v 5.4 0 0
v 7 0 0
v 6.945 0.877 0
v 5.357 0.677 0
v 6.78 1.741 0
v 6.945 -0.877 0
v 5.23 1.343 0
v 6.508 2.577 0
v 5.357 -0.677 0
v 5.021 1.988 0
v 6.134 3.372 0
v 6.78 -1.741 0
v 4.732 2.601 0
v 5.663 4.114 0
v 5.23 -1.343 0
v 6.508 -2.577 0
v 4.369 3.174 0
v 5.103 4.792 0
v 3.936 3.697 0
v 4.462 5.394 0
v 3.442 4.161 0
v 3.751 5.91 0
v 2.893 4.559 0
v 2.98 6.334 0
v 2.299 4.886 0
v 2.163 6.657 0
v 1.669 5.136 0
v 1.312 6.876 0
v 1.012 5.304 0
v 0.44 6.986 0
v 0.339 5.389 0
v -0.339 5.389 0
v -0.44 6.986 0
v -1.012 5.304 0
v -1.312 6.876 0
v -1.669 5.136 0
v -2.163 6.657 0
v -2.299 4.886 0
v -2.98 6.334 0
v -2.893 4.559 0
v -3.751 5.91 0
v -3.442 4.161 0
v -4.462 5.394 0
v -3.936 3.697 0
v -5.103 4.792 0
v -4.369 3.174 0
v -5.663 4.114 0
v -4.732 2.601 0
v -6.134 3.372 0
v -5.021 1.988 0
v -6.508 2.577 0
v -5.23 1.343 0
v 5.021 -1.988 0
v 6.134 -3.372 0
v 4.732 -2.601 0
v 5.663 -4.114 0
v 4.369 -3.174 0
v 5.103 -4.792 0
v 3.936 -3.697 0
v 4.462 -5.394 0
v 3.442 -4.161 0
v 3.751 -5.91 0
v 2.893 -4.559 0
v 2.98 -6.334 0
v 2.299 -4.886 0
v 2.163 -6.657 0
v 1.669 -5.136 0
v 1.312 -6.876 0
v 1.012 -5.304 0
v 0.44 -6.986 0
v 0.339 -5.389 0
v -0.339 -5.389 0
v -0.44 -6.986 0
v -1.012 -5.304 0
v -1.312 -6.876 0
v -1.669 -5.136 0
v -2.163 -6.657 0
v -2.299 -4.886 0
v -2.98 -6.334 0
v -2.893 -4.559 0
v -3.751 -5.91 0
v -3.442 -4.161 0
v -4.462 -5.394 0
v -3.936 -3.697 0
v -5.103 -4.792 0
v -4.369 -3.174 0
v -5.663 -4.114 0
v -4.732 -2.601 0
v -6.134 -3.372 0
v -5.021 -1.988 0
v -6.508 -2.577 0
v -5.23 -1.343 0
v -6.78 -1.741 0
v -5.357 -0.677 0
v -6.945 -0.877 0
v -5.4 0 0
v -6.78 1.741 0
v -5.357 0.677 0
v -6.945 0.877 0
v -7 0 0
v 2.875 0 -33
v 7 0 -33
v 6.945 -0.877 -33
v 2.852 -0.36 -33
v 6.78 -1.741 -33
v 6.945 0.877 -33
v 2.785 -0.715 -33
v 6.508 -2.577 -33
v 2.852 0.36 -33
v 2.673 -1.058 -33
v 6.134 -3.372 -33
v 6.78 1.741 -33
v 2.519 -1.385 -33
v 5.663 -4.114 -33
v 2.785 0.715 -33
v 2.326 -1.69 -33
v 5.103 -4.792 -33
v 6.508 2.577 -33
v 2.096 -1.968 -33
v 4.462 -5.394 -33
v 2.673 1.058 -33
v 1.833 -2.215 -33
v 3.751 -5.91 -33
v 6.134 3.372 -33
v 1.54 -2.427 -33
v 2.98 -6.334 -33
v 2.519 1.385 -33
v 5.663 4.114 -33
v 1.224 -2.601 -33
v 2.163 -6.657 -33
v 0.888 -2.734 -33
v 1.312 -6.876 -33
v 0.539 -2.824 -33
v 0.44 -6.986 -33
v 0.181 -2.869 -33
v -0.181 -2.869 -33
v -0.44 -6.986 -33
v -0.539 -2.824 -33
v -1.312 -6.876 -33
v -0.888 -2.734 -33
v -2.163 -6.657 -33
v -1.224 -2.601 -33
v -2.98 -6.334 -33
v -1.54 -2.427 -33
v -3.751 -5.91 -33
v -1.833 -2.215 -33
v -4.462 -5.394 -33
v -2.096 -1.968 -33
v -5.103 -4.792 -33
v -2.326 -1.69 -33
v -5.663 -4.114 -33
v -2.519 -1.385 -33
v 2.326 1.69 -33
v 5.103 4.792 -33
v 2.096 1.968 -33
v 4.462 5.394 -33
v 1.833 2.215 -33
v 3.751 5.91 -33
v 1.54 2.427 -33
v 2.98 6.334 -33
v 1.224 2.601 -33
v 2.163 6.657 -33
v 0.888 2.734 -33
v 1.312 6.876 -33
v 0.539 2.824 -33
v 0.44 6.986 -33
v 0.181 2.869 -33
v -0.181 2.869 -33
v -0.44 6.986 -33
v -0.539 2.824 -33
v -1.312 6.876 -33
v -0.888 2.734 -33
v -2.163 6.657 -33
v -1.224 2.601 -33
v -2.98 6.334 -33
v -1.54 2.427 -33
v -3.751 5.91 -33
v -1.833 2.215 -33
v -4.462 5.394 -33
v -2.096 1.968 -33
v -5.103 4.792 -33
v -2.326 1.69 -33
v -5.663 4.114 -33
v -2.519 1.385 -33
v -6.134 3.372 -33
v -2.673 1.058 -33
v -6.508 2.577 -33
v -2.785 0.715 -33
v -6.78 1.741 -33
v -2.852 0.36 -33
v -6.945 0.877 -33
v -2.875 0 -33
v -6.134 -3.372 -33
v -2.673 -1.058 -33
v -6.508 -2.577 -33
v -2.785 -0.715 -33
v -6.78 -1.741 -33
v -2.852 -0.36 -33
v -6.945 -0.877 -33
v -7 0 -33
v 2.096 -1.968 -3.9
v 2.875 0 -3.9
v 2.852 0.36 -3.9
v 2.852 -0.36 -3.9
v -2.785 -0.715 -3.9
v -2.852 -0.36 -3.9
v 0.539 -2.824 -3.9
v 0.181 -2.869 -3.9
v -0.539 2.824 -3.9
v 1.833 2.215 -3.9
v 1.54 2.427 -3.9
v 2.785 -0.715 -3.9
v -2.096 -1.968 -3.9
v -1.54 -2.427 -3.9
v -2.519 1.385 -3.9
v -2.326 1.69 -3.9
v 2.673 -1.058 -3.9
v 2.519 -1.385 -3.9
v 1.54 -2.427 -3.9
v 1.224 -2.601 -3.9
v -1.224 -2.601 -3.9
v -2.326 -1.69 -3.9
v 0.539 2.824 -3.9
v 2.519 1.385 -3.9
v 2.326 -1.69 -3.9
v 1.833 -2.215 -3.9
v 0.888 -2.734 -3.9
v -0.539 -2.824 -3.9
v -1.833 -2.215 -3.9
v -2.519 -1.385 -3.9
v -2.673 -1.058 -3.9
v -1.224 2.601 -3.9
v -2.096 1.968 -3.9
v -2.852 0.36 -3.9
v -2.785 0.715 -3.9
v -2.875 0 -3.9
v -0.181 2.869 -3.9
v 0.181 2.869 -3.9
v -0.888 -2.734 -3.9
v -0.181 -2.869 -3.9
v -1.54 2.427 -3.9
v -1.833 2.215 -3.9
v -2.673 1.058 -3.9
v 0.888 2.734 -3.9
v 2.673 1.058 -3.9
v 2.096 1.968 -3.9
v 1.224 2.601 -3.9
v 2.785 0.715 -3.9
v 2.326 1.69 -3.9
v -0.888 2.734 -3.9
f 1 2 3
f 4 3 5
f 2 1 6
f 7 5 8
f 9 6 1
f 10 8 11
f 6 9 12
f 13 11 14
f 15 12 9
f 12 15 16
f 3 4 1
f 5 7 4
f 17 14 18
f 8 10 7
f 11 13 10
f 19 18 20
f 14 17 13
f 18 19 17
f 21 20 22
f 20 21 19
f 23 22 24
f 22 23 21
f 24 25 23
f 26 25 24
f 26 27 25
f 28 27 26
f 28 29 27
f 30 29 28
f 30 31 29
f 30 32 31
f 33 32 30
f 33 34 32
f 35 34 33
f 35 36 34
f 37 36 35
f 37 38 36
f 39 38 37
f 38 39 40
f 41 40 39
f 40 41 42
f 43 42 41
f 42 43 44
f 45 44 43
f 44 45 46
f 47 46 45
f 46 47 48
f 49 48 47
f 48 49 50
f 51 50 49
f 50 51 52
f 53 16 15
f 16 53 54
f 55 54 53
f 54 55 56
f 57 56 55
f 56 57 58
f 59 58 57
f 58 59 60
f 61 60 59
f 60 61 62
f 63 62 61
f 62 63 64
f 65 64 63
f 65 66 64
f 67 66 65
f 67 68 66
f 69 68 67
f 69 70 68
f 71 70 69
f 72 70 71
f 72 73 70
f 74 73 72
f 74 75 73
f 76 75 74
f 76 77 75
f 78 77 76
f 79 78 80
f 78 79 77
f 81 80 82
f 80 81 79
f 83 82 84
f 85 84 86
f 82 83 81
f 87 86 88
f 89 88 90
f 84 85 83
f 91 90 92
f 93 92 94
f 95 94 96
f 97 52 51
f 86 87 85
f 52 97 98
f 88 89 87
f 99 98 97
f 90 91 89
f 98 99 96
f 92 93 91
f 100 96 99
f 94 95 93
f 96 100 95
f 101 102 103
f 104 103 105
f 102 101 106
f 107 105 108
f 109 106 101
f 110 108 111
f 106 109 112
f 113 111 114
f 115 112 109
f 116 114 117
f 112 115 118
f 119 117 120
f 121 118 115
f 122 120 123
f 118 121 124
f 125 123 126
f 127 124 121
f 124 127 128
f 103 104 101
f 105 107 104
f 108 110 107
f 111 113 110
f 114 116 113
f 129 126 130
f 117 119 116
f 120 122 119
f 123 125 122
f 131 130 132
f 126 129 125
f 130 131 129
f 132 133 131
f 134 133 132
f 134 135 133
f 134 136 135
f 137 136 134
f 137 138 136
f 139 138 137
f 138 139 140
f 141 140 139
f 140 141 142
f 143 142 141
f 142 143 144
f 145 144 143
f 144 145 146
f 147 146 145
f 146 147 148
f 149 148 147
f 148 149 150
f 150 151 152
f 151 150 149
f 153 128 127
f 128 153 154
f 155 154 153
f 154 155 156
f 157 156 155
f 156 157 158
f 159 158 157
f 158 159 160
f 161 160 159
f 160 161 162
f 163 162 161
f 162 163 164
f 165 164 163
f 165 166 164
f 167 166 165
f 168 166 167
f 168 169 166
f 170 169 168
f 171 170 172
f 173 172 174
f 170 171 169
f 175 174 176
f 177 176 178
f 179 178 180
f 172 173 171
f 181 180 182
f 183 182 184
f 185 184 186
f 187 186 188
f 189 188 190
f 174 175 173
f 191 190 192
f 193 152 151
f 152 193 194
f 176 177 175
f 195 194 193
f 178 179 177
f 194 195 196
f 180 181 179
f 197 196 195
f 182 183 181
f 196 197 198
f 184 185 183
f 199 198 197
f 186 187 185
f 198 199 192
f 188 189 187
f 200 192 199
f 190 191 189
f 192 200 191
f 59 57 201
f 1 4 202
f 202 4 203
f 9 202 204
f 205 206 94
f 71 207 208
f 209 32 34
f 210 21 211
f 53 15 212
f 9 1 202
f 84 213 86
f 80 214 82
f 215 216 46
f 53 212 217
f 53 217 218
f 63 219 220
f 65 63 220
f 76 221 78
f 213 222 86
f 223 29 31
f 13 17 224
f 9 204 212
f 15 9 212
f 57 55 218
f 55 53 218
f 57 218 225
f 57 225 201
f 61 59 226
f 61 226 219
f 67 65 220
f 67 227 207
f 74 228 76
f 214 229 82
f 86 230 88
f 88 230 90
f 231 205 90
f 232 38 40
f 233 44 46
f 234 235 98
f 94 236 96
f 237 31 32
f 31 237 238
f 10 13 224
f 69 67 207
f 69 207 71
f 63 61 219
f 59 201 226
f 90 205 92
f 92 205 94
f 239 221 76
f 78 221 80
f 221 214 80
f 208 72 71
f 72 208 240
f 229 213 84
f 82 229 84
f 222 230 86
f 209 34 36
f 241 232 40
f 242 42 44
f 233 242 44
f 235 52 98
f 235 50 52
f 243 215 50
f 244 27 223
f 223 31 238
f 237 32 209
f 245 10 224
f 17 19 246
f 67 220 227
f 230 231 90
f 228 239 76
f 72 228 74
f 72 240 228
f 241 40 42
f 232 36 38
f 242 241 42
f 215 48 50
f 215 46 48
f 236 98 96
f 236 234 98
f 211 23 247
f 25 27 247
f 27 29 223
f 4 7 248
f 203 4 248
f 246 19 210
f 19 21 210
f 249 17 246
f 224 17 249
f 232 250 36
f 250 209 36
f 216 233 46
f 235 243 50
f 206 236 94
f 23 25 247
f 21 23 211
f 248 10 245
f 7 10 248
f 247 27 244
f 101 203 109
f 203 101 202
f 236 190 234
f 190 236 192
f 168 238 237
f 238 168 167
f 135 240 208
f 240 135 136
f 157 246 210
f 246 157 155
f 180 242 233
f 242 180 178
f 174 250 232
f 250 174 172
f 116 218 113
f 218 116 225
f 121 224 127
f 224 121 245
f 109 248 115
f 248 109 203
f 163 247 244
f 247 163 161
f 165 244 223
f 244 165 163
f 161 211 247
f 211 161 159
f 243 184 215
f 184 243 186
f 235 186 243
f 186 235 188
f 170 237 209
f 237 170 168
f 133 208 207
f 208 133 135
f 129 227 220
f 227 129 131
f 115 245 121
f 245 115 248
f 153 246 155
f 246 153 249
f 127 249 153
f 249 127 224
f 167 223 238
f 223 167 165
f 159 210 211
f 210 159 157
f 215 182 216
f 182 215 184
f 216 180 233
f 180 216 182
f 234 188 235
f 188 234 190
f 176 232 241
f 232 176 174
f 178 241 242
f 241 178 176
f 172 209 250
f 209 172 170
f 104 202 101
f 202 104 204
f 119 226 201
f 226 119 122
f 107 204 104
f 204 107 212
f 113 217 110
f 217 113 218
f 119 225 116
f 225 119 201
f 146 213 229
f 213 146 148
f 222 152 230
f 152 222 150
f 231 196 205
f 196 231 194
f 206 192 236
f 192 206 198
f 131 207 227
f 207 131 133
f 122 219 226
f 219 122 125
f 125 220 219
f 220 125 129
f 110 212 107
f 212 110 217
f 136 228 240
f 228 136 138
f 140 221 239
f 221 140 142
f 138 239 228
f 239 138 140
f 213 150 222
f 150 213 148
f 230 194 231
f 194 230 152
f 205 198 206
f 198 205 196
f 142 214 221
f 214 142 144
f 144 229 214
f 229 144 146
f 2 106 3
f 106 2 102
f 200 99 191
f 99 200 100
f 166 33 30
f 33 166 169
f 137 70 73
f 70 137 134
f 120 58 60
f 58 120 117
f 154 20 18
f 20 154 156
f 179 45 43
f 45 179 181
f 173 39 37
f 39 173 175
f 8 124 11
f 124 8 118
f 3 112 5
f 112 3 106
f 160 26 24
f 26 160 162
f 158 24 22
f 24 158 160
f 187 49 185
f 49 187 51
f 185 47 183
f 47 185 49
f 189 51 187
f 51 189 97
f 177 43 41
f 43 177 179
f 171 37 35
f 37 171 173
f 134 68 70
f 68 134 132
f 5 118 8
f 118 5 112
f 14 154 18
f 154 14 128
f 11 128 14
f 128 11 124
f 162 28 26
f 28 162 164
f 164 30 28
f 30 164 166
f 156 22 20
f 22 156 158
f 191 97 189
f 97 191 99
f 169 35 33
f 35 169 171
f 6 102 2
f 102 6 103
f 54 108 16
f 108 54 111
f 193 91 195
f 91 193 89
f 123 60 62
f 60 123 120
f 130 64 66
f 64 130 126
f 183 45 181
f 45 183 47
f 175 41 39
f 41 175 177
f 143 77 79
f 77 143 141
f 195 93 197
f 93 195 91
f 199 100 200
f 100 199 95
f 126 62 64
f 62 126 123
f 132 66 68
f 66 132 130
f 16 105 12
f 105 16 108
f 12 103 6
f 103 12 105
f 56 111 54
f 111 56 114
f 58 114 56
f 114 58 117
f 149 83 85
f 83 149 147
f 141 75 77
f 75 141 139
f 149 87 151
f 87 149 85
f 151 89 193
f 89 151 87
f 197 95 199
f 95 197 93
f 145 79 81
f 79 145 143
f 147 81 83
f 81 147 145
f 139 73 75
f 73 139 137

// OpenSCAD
$fn = 50;


difference() {
	union() {
		translate(v = [0, 0, -33.0000000000]) {
			cylinder(h = 33, r = 7.0000000000);
		}
	}
	union() {
		translate(v = [0, 0, 0]) {
			rotate(a = [0, 0, 0]) {
				difference() {
					union() {
						#translate(v = [0, 0, -33.0000000000]) {
							cylinder(h = 33, r = 2.6000000000);
						}
						#translate(v = [0, 0, -3.9000000000]) {
							cylinder(h = 3.9000000000, r1 = 2.8750000000, r2 = 5.4000000000);
						}
						#translate(v = [0, 0, -33.0000000000]) {
							cylinder(h = 33, r = 2.8750000000);
						}
						#translate(v = [0, 0, -33.0000000000]) {
							cylinder(h = 33, r = 2.6000000000);
						}
					}
					union();
				}
			}
		}
	}
}
